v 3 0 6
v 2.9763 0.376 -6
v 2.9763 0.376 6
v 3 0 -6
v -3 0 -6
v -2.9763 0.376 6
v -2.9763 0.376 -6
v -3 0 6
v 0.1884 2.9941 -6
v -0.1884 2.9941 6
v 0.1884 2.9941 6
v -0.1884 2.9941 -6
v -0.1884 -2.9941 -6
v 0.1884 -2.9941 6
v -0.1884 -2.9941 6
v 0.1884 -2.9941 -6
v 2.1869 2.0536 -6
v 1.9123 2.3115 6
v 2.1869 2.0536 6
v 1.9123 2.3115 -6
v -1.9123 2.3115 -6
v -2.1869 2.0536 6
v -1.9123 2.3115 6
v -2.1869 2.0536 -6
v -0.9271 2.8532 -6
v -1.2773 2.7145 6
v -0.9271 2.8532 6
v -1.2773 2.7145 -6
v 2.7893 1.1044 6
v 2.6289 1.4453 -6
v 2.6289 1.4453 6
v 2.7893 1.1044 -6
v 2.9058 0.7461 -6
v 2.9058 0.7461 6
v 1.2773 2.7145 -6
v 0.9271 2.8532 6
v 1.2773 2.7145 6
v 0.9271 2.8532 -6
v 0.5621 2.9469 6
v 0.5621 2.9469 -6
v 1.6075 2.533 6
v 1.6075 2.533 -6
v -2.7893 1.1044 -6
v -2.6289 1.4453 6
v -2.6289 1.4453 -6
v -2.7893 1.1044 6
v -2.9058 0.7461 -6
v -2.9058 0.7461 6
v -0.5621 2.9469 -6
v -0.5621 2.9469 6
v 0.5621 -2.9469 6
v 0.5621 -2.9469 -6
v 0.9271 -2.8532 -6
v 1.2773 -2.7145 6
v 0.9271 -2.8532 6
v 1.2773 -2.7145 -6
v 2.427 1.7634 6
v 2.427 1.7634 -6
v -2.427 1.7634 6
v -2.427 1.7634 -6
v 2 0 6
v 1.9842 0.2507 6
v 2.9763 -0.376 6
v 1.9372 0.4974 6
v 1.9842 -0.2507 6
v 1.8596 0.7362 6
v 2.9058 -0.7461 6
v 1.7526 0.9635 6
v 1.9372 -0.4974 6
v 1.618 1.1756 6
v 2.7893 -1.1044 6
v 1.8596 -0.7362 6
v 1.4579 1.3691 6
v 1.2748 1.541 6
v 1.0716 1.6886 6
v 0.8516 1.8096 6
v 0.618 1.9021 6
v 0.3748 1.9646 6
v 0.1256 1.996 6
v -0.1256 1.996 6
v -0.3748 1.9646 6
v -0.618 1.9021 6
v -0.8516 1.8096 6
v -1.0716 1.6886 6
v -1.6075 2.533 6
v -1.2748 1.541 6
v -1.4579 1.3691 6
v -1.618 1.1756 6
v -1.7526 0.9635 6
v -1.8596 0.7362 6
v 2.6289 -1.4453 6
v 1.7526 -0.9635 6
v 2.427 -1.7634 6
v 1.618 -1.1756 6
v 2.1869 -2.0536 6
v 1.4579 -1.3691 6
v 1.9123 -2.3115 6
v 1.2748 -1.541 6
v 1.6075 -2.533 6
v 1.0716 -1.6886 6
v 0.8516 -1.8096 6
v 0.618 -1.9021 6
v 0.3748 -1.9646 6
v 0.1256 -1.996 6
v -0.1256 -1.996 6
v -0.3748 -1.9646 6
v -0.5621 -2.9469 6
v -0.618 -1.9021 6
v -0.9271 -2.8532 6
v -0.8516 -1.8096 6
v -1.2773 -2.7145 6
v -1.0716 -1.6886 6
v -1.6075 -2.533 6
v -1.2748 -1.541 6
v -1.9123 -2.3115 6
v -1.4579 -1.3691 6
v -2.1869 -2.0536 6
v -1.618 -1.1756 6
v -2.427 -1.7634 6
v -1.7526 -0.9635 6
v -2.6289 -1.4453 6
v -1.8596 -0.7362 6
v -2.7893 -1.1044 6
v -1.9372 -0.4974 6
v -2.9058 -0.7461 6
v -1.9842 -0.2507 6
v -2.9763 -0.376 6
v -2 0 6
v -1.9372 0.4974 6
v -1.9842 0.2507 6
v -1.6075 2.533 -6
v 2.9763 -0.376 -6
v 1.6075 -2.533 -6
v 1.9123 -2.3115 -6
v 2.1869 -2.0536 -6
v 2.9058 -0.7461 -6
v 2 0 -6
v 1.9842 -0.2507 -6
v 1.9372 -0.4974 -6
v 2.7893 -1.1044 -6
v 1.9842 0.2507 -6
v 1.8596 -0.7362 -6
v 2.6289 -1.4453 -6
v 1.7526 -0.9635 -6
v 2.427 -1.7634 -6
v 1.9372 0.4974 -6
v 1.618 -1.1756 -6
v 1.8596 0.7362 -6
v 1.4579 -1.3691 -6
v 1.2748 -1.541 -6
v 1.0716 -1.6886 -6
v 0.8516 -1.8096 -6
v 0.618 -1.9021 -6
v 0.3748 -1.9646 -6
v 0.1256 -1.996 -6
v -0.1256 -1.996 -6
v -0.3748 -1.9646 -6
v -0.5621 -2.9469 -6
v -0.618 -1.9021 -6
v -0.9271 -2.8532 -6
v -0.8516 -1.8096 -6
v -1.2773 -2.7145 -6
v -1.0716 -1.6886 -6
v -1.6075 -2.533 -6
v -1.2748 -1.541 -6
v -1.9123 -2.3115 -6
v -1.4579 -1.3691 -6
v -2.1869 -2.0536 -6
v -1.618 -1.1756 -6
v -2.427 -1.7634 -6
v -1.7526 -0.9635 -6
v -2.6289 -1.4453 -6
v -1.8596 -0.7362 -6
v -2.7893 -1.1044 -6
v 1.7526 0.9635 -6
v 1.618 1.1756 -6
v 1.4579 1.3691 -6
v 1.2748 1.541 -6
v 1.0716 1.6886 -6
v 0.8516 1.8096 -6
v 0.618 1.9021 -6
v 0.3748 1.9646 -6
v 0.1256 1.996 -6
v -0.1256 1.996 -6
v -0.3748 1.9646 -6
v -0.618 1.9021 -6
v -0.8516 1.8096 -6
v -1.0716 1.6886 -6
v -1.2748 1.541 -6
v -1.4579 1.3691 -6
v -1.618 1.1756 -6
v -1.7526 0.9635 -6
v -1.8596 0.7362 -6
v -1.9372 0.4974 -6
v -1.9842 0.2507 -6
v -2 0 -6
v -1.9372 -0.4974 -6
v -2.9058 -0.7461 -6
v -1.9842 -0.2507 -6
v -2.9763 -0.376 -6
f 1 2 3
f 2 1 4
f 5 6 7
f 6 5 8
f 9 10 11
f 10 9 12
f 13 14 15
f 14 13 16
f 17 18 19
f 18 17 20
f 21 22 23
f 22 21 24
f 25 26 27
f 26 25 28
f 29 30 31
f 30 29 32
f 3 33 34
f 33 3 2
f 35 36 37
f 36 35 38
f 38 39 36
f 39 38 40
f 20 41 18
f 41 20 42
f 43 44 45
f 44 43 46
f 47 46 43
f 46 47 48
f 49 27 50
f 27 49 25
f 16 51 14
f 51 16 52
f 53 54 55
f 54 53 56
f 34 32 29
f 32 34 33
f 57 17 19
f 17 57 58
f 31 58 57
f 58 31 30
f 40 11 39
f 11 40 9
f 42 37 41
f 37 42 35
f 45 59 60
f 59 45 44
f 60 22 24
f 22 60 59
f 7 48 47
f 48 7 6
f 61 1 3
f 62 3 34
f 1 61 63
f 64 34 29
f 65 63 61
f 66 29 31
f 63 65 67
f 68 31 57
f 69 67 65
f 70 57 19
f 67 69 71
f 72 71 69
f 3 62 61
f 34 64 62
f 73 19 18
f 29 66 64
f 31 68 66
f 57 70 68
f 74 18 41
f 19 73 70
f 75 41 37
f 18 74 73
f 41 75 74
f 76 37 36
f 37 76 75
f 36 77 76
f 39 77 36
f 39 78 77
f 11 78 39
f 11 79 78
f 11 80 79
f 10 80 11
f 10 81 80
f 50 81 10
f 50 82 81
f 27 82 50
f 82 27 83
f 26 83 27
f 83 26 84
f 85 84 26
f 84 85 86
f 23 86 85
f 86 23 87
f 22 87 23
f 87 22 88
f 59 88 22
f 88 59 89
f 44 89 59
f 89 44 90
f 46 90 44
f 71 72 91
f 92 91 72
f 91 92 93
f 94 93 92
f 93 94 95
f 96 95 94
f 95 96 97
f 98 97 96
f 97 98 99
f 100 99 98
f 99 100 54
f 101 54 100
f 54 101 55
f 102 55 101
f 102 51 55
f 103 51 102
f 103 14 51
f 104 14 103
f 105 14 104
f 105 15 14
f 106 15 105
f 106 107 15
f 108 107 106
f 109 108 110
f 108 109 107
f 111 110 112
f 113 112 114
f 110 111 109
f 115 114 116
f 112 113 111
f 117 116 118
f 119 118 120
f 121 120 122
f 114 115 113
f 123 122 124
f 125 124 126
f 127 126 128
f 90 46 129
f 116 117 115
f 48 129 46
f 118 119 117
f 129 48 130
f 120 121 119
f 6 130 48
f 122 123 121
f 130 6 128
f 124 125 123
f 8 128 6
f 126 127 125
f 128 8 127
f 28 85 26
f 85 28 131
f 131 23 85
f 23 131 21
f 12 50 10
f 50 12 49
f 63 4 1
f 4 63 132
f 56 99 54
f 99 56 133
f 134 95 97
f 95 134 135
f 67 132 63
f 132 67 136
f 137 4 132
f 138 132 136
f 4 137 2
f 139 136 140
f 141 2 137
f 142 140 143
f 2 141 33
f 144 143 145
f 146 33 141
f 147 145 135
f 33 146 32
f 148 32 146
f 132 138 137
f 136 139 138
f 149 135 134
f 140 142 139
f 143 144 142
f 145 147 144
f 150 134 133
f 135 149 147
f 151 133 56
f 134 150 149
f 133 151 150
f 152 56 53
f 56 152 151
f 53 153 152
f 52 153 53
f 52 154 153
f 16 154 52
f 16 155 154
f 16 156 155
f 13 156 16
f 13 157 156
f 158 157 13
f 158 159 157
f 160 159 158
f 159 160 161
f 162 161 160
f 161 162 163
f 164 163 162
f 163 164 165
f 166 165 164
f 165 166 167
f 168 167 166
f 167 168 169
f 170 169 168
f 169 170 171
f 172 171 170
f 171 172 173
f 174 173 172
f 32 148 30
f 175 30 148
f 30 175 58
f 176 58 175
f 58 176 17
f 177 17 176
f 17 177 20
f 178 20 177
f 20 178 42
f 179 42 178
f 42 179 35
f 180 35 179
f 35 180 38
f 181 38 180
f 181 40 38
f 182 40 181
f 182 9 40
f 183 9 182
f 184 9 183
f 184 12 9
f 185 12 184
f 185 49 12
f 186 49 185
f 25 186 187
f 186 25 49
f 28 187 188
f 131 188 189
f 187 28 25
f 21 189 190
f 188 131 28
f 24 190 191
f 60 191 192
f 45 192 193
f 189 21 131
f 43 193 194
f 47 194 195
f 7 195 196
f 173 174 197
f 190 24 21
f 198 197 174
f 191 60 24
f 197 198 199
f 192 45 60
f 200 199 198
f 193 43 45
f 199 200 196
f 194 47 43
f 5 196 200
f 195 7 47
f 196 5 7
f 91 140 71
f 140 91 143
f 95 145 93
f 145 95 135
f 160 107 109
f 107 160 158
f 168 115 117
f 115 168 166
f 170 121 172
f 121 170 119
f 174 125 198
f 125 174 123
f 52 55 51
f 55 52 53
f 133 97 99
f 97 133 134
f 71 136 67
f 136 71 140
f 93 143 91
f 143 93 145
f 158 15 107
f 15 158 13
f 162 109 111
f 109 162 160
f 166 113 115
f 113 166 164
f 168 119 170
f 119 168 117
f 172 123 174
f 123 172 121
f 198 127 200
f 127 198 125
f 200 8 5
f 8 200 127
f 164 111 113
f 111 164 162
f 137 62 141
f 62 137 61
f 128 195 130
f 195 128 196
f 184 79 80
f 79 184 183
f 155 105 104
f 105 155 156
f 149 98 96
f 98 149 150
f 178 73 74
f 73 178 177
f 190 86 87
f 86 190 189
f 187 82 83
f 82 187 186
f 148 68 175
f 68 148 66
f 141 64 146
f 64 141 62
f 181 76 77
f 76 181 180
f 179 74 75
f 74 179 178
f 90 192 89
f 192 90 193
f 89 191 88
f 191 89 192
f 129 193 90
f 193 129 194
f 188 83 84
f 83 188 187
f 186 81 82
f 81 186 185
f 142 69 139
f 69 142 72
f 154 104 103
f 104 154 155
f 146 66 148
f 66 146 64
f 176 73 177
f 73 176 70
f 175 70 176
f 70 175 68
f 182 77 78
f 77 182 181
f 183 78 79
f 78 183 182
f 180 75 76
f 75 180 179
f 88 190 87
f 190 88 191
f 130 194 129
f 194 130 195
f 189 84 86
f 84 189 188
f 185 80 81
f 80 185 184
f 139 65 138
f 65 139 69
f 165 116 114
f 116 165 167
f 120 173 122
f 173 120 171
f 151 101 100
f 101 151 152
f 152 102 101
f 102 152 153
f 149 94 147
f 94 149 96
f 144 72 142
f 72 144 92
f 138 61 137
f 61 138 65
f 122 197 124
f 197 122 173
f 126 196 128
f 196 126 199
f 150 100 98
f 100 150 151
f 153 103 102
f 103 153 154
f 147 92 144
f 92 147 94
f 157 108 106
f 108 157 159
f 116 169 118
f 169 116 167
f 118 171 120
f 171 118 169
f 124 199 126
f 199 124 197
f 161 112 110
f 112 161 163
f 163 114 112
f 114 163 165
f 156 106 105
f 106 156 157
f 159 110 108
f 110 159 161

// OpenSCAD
$fn = 50;


difference() {
	union() {
		translate(v = [0, 0, -6.0000000000]) {
			cylinder(h = 12, r = 3.0000000000);
		}
	}
	union() {
		translate(v = [0, 0, -100.0000000000]) {
			cylinder(h = 200, r = 2);
		}
	}
}
